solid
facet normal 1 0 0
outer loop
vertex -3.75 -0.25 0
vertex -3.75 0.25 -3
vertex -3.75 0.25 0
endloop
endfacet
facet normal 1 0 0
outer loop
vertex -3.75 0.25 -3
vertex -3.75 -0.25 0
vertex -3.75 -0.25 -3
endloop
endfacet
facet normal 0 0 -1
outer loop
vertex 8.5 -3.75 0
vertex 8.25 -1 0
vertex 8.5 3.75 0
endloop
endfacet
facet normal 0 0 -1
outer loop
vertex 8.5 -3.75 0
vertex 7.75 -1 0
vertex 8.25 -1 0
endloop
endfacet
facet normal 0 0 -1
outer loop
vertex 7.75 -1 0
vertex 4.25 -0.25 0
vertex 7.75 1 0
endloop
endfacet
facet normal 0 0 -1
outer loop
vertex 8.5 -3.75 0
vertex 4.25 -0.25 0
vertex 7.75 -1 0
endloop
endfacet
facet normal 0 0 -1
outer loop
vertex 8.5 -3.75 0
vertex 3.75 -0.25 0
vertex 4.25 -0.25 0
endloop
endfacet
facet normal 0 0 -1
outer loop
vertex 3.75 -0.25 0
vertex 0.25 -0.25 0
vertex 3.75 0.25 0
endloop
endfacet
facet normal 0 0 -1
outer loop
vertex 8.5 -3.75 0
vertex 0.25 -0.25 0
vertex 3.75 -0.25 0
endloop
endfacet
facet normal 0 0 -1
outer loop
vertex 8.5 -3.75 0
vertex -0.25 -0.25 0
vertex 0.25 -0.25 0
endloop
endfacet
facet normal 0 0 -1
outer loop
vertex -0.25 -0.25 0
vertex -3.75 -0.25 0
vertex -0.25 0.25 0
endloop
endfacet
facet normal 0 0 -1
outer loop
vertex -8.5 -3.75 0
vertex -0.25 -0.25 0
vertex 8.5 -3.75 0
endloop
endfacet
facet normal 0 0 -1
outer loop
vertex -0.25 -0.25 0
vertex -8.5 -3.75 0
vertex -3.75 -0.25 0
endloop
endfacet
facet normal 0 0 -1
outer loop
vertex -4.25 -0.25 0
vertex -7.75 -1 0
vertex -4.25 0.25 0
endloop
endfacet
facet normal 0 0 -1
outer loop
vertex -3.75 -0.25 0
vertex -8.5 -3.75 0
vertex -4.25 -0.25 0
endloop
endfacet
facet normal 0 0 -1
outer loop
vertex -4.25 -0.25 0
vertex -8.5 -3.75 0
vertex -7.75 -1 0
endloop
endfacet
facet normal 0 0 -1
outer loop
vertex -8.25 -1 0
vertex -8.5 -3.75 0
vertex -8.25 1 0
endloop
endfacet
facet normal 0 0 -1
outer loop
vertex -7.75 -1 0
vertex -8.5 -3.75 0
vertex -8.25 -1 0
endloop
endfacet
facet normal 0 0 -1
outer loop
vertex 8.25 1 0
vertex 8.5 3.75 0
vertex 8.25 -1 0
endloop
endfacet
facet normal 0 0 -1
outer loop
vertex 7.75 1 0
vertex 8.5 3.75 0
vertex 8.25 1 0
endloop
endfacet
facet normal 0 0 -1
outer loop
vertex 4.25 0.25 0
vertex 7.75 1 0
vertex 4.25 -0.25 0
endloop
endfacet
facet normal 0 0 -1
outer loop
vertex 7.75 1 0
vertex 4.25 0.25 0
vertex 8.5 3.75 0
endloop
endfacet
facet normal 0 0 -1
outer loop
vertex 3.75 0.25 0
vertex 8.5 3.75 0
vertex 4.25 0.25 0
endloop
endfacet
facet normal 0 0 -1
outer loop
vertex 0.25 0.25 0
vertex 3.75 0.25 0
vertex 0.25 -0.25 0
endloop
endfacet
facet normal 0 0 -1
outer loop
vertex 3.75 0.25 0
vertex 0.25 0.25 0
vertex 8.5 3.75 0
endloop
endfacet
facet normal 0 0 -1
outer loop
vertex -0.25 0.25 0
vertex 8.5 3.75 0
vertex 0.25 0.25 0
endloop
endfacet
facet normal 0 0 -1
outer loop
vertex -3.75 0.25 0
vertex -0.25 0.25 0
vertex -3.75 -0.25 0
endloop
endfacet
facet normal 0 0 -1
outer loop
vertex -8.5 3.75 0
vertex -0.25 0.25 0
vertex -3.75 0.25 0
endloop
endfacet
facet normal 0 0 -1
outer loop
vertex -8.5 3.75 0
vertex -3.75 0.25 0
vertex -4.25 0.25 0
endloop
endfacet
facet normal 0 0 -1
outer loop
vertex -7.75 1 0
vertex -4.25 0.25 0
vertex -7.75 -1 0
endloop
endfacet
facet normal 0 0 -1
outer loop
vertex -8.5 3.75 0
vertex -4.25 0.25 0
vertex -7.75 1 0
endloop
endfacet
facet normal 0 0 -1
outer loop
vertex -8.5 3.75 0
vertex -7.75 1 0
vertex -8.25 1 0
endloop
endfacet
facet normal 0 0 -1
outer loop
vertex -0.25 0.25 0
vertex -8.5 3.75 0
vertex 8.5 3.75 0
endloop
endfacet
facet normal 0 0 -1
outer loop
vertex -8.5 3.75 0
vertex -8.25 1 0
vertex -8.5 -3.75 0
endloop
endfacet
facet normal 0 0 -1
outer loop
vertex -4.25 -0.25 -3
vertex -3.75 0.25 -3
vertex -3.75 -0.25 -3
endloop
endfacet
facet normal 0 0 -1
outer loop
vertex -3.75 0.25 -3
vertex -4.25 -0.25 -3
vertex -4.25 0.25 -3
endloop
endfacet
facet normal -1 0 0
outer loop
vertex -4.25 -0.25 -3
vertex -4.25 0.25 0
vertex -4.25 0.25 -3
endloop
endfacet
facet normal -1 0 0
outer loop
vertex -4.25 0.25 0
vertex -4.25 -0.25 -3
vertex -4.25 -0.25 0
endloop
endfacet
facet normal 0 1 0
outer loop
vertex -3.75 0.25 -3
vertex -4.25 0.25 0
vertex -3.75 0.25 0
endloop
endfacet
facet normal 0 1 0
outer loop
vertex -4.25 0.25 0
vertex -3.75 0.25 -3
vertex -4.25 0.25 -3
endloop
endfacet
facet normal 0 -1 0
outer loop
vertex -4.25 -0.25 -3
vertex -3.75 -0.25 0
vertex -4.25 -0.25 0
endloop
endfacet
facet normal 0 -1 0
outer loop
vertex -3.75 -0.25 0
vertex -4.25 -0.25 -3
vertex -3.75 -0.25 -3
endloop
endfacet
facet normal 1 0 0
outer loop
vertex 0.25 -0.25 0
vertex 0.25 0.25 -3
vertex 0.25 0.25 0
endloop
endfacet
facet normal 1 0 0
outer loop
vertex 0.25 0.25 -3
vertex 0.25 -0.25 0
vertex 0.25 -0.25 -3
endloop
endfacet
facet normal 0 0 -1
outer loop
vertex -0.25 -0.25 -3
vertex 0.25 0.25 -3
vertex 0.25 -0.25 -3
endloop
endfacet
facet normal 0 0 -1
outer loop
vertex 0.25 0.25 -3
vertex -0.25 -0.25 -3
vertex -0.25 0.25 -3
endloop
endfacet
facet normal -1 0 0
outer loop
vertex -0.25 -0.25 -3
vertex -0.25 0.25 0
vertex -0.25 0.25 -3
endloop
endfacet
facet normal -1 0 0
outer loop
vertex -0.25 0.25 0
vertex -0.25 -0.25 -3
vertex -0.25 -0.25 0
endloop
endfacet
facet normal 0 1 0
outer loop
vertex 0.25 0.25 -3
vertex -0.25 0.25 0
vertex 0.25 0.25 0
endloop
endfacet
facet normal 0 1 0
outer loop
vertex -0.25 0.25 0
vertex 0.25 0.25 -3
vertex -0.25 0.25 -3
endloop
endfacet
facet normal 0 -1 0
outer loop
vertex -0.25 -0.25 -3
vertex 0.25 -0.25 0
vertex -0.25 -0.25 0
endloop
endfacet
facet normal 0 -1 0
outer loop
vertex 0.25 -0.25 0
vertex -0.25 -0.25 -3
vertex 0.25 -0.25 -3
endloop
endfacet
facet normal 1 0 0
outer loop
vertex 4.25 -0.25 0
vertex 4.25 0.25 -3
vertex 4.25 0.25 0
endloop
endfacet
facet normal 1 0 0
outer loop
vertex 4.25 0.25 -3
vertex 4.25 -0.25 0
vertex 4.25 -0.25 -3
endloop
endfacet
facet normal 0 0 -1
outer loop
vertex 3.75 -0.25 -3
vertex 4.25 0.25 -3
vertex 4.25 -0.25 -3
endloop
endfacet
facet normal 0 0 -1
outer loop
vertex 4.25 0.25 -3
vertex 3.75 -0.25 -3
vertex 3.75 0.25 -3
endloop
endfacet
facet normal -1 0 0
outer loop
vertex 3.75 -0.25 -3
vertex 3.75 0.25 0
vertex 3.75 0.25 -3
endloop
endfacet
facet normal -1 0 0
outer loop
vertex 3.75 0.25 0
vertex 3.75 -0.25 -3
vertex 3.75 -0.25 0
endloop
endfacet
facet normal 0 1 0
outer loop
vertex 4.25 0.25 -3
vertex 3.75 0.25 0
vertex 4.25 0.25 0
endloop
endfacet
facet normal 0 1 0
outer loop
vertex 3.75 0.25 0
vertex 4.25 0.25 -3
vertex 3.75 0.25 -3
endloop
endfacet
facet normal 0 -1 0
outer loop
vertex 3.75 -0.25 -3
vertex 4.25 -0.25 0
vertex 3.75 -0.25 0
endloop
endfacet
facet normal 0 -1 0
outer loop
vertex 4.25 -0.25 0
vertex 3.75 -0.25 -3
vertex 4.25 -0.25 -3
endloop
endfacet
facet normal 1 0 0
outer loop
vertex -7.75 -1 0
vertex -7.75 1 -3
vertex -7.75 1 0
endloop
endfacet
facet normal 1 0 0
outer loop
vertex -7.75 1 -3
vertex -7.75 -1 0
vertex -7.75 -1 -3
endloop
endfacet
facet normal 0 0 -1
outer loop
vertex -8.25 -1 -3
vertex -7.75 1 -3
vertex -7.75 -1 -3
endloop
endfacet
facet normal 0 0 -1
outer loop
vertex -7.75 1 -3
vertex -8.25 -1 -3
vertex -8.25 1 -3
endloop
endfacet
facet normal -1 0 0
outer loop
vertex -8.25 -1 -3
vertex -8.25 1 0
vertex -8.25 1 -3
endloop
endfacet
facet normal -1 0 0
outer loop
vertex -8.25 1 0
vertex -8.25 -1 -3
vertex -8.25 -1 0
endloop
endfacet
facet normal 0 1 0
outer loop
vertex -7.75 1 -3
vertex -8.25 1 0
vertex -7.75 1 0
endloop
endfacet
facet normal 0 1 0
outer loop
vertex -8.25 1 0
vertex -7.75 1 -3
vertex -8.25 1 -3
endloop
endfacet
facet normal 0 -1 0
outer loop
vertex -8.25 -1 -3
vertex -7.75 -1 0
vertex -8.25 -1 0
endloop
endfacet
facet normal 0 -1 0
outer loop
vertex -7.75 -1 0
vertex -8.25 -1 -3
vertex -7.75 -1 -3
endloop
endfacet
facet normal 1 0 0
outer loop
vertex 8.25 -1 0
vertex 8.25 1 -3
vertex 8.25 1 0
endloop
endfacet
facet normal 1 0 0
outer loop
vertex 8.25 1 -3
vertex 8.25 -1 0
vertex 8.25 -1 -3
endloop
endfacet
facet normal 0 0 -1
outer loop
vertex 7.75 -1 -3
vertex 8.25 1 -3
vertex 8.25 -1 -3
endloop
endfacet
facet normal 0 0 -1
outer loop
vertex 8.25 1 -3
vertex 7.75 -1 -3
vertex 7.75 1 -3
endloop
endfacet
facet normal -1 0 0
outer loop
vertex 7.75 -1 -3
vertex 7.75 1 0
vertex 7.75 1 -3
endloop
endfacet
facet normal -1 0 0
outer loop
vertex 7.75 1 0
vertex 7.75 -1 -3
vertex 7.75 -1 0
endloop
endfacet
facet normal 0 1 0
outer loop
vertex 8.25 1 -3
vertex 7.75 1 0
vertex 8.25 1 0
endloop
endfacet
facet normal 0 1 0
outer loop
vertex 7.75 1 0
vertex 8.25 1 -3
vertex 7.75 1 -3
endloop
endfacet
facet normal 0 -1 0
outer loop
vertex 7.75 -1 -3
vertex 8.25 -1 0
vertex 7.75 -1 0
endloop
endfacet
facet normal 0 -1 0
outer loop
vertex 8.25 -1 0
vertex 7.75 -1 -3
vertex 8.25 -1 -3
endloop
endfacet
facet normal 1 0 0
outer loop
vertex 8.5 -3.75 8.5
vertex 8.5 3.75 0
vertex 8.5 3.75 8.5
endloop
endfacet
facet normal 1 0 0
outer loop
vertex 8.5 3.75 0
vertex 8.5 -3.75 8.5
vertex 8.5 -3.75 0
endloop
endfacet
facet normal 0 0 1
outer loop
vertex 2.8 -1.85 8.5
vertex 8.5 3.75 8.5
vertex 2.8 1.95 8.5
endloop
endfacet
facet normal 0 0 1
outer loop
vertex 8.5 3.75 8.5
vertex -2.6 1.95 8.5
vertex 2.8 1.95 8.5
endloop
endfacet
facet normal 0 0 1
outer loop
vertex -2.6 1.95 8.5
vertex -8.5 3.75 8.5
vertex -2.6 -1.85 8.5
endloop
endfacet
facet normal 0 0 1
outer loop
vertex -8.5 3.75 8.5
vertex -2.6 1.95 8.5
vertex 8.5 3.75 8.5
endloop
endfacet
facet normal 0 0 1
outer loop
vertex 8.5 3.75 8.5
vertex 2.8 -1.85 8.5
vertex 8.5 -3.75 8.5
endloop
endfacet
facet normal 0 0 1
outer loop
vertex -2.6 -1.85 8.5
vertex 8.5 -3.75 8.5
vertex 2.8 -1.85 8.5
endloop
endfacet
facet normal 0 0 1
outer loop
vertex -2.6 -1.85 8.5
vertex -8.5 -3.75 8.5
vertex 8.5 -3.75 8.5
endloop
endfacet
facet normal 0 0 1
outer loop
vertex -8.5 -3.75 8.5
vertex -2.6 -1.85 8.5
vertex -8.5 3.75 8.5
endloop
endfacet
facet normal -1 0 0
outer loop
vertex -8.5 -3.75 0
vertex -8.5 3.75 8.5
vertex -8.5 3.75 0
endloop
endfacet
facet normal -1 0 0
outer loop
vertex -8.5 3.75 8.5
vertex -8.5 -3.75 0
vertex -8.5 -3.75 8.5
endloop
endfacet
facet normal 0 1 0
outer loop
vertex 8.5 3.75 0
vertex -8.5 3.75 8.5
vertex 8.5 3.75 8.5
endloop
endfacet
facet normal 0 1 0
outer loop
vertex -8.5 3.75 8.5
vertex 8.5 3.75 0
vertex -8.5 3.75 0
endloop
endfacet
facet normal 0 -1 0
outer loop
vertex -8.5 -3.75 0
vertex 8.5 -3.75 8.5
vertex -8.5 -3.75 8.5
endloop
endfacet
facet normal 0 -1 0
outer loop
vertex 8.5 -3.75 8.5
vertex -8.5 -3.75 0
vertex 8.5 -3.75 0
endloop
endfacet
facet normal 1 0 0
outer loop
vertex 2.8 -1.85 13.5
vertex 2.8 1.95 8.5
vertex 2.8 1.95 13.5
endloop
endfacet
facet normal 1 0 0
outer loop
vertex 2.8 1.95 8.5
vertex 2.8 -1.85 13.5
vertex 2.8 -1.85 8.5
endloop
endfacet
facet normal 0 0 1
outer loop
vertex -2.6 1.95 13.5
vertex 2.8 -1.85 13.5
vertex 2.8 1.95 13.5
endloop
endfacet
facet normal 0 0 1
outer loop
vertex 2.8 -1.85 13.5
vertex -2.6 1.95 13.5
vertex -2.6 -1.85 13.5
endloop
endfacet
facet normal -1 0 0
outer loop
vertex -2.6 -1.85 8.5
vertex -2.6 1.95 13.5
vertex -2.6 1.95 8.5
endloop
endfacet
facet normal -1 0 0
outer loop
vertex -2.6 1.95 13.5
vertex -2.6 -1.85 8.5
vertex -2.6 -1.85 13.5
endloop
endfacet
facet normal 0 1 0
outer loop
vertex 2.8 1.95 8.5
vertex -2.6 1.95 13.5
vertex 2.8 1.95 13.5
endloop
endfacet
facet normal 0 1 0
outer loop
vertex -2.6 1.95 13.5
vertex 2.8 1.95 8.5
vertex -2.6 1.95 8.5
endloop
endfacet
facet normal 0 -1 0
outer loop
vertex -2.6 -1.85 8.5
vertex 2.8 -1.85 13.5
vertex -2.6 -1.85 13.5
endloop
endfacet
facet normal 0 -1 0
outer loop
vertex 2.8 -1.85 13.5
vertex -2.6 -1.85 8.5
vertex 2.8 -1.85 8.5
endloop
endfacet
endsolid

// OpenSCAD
$fn = 32;

pin_spc = 4;
pin_dia = 0.5;
big_dia = 2;
pin_len = 3;

body_wid = 17;
body_len = 7.5;
body_hgt = 8.5;

slide_wid = 5.4;
slide_len = 3.8;
slide_hgt = 5;

slide_x = (body_wid/2)-3.2-(slide_wid/2);
slide_y = (body_len/2)-(slide_len/2);

// switch centered on pin 2
module pin_at( x, y, len, wid) {
     translate( [x-wid/2, y-len/2, -pin_len])
	  cube( [wid, len, pin_len]);
}

module switch() {
     pin_at( -4, 0, pin_dia, pin_dia);
     pin_at( -0, 0, pin_dia, pin_dia);
     pin_at( 4, 0, pin_dia, pin_dia);
     pin_at( -8, 0, big_dia, pin_dia);
     pin_at( 8, 0, big_dia, pin_dia);

     translate( [-body_wid/2, -body_len/2, 0])
	  cube( [body_wid, body_len, body_hgt]);
     translate( [-slide_x, -slide_y, body_hgt])
	  cube( [slide_wid, slide_len, slide_hgt]);
}


switch();
